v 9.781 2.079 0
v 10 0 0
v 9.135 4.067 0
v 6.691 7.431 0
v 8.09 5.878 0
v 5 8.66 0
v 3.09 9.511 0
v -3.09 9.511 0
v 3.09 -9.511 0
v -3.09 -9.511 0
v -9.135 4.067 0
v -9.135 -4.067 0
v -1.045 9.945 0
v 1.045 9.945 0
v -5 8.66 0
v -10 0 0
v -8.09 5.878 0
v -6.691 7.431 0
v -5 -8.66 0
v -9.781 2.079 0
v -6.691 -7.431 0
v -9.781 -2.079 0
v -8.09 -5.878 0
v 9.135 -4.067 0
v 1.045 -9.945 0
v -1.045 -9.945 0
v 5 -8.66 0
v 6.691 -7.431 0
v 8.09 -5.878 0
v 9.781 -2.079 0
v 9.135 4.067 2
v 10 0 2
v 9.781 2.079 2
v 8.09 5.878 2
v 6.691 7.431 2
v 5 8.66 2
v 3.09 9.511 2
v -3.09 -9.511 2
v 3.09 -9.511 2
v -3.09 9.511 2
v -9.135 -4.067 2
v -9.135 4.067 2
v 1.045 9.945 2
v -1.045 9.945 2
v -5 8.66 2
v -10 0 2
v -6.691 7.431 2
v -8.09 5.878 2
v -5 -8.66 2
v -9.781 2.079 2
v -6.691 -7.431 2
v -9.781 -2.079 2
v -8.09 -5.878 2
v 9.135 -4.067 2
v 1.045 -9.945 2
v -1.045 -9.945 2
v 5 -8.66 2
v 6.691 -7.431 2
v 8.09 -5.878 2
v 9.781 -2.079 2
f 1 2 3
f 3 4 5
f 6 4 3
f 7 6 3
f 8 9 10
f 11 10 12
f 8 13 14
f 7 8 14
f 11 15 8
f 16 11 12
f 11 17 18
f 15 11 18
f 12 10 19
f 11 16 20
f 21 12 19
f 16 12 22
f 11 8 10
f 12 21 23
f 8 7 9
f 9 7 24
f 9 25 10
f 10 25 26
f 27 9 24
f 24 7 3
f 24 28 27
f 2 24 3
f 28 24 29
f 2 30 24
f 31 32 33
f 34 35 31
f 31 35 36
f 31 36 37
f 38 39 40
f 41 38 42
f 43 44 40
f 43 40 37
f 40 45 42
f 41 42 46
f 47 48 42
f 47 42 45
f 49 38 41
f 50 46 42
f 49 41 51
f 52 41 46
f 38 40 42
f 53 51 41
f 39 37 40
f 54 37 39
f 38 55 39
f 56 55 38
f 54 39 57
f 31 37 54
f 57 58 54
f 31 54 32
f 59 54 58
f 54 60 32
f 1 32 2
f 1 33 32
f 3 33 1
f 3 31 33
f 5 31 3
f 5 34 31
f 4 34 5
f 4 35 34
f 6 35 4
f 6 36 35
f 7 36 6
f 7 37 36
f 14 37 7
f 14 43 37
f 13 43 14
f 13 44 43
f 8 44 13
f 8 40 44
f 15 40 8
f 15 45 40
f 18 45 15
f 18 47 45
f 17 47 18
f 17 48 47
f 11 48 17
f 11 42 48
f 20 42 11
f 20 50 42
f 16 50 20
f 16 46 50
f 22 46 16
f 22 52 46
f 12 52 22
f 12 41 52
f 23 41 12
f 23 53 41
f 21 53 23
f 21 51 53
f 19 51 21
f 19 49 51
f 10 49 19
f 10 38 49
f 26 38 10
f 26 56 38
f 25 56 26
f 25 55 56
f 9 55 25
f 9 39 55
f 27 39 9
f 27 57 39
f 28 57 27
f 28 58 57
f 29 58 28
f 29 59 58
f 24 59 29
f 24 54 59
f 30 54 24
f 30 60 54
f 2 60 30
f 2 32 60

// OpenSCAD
// Number 0 in OpenSCAD
module number_zero(radius, height, segments) {
  linear_extrude(height = height, convexity = 10) {
    circle(r = radius);
  }
}

number_zero(radius = 10, height = 2, segments = 48);
